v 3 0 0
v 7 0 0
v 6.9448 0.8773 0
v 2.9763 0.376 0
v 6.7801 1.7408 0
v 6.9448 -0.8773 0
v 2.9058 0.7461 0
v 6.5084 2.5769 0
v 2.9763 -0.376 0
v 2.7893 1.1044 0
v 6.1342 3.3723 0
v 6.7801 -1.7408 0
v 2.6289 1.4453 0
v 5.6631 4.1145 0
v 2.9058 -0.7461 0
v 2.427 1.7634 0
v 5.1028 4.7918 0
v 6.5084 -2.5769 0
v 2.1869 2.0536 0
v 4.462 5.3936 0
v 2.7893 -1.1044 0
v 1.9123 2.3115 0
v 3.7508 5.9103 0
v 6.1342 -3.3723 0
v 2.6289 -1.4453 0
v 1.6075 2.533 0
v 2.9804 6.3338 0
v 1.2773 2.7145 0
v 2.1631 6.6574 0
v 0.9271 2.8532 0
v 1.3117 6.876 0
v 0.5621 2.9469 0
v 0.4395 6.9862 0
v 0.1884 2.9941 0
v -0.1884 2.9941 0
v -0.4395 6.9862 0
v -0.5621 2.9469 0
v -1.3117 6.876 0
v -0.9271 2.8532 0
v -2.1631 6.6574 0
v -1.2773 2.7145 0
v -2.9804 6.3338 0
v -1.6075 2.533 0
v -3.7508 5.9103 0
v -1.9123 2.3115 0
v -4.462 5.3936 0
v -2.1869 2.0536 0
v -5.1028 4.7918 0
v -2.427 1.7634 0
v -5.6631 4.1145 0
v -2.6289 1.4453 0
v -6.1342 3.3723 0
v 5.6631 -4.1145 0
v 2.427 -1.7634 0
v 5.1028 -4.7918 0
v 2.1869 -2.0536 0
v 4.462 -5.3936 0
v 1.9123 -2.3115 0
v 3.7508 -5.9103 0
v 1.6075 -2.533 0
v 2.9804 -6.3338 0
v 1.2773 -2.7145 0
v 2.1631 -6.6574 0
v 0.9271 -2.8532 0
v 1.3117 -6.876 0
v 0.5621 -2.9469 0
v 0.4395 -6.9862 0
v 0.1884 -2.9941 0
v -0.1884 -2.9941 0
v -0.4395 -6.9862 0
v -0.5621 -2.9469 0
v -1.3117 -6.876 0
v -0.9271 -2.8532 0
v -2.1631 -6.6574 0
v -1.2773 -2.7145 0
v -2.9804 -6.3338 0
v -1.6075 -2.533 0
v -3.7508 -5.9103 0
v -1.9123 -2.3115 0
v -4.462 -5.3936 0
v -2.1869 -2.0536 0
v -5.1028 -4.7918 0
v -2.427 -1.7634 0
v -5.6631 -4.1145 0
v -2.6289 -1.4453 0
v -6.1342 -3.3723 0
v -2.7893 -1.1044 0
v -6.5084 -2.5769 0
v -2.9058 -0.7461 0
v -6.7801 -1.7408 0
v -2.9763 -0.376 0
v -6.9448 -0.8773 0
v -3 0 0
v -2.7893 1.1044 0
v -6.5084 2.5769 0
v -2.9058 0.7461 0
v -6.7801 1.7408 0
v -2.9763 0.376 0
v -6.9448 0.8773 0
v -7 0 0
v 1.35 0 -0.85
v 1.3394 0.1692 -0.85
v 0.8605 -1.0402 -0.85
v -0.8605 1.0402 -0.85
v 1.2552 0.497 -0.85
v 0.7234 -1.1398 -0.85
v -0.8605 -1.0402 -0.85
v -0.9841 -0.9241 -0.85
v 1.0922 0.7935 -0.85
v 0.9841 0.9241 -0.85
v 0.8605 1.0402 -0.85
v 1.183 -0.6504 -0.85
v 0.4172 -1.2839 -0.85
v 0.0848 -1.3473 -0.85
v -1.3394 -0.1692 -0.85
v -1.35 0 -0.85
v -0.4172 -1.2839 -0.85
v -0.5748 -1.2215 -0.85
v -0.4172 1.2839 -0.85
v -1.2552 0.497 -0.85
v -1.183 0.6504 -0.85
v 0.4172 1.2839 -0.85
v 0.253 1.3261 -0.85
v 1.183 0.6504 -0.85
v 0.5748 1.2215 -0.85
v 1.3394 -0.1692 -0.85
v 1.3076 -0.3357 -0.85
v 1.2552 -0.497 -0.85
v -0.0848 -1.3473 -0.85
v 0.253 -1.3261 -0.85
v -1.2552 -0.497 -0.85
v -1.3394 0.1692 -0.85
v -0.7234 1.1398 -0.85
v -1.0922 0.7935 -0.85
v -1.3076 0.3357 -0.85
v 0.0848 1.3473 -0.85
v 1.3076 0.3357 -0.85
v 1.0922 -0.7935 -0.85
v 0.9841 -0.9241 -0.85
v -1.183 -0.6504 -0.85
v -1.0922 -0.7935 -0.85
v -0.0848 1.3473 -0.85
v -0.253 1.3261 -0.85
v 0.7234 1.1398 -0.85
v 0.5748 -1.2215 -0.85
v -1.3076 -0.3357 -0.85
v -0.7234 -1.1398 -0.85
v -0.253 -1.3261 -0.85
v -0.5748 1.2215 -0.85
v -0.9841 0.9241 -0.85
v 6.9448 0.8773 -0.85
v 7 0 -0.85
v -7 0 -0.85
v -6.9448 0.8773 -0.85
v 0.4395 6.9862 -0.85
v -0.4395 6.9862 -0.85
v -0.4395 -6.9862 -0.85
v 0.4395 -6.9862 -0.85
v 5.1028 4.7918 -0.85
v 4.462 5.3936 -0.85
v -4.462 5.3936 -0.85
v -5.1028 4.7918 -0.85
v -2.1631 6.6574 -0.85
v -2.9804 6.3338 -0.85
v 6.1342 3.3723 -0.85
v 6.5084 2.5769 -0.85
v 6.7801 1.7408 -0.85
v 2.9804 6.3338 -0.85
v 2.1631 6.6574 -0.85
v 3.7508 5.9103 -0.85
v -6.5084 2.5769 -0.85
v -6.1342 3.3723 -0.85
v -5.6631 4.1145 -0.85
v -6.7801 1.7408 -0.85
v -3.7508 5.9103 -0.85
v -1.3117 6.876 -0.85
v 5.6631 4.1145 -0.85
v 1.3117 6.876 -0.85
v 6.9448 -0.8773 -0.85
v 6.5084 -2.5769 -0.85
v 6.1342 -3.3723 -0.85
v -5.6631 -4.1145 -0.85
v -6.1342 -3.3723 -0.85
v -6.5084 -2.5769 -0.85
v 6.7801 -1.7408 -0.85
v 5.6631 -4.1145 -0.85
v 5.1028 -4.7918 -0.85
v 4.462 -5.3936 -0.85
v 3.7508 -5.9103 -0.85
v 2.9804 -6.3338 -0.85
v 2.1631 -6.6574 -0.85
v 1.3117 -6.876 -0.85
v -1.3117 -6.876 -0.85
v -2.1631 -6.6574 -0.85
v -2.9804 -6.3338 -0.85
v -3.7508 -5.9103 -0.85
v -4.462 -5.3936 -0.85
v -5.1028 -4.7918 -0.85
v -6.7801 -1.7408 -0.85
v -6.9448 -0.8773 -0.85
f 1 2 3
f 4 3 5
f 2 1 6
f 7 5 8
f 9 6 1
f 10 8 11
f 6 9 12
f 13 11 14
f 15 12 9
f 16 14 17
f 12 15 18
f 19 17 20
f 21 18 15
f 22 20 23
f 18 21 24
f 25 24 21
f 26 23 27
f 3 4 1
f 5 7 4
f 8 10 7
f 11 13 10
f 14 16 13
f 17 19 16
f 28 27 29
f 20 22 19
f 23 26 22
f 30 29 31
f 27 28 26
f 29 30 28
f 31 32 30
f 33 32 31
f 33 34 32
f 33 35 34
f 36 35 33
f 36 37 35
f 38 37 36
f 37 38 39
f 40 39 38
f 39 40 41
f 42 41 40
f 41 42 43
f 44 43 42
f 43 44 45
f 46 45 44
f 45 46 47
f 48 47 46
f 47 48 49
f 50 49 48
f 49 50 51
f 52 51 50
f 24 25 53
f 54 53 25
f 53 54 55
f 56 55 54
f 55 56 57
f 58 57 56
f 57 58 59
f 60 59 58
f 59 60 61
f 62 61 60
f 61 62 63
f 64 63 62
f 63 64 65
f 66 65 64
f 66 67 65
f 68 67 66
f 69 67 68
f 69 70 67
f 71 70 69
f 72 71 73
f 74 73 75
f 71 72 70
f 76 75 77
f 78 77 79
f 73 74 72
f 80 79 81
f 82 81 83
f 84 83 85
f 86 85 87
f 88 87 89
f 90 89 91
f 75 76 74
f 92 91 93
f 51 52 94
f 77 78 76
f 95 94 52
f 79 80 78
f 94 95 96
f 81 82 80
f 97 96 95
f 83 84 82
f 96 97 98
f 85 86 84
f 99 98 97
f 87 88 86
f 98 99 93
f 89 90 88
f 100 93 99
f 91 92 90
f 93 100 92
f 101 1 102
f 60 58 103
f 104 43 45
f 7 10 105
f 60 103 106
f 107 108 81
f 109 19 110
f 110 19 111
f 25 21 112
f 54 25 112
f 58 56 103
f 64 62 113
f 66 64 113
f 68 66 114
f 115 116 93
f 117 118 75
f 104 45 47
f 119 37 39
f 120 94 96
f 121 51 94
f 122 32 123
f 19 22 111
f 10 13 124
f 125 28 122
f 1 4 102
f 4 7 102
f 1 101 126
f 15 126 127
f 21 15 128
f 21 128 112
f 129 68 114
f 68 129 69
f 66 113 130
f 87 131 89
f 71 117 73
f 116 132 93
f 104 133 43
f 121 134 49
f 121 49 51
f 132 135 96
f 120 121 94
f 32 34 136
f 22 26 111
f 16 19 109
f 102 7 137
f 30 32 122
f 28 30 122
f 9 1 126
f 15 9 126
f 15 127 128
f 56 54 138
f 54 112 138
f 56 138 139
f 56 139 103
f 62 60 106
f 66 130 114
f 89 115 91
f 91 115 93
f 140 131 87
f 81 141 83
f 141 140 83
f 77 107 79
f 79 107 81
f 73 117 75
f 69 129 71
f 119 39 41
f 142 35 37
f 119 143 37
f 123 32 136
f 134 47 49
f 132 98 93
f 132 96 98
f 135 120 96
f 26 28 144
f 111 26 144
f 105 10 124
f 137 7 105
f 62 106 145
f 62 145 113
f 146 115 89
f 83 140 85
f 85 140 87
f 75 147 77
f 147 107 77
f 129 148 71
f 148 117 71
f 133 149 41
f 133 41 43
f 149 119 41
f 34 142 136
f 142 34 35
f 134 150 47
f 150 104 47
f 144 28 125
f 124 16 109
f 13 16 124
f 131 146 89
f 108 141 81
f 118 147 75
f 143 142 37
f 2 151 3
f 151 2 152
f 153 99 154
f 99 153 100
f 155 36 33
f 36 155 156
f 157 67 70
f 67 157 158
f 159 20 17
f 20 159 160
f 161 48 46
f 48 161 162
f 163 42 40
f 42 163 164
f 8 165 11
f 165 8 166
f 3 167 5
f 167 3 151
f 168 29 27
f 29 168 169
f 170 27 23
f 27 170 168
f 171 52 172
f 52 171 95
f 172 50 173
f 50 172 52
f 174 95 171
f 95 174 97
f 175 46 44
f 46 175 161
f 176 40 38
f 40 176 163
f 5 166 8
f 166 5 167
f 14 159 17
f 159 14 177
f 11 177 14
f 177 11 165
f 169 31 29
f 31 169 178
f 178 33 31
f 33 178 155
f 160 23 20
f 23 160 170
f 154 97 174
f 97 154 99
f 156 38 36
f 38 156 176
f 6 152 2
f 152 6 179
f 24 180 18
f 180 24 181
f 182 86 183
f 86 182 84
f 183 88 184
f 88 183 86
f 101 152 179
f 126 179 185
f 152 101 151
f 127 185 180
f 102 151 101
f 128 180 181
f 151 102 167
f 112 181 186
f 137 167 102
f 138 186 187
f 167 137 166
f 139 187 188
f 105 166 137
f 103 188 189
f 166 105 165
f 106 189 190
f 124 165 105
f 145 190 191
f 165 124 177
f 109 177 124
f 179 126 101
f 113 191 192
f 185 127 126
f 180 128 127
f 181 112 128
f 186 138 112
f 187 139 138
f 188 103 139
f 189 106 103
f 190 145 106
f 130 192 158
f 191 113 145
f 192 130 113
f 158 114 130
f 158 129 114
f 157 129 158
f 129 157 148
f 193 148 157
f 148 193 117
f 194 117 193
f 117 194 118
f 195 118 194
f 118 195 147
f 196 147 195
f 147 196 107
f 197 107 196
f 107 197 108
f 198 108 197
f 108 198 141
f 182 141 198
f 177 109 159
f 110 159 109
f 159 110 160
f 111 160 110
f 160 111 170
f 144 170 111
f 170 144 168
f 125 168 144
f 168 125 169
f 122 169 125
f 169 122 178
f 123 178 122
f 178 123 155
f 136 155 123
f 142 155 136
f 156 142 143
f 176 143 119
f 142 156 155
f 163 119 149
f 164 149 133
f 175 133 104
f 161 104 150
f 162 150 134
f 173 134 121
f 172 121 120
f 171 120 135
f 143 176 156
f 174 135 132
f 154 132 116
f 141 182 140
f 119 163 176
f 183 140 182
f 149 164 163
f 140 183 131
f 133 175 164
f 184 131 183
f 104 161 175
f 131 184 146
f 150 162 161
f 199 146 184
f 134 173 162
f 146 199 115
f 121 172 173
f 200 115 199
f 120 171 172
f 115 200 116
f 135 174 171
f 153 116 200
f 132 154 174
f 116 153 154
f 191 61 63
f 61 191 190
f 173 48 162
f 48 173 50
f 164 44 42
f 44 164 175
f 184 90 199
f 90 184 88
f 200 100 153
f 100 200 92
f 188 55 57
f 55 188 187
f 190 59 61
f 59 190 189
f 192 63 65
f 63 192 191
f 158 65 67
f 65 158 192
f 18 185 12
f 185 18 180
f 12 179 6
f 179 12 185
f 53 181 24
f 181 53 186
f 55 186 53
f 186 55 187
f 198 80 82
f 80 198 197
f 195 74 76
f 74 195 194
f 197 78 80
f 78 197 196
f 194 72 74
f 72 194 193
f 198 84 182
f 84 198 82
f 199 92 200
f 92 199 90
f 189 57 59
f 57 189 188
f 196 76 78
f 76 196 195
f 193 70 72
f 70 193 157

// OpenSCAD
$fn = 50;

difference() {
	union() {
		translate(v = [0, 0, -0.85]) {
			cylinder(h = 0.85, r = 7.0);
		}
	}
	union() {
		translate(v = [0, 0, 0]) {
			rotate(a = [0, 0, 0]) {
				difference() {
					union() {
						translate(v = [0, 0, -3.85]) {
							cylinder(h = 3.85, r = 1.0);
						}
						translate(v = [0, 0, -0.85]) {
							cylinder(h = 0.85, r1 = 1.35, r2 = 3.0);
						}
						translate(v = [0, 0, -3.85]) {
							cylinder(h = 3.85, r = 1.35);
						}
						translate(v = [0, 0, -3.85]) {
							cylinder(h = 3.85, r = 1.0);
						}
					}
					union();
				}
			}
		}
	}
}
